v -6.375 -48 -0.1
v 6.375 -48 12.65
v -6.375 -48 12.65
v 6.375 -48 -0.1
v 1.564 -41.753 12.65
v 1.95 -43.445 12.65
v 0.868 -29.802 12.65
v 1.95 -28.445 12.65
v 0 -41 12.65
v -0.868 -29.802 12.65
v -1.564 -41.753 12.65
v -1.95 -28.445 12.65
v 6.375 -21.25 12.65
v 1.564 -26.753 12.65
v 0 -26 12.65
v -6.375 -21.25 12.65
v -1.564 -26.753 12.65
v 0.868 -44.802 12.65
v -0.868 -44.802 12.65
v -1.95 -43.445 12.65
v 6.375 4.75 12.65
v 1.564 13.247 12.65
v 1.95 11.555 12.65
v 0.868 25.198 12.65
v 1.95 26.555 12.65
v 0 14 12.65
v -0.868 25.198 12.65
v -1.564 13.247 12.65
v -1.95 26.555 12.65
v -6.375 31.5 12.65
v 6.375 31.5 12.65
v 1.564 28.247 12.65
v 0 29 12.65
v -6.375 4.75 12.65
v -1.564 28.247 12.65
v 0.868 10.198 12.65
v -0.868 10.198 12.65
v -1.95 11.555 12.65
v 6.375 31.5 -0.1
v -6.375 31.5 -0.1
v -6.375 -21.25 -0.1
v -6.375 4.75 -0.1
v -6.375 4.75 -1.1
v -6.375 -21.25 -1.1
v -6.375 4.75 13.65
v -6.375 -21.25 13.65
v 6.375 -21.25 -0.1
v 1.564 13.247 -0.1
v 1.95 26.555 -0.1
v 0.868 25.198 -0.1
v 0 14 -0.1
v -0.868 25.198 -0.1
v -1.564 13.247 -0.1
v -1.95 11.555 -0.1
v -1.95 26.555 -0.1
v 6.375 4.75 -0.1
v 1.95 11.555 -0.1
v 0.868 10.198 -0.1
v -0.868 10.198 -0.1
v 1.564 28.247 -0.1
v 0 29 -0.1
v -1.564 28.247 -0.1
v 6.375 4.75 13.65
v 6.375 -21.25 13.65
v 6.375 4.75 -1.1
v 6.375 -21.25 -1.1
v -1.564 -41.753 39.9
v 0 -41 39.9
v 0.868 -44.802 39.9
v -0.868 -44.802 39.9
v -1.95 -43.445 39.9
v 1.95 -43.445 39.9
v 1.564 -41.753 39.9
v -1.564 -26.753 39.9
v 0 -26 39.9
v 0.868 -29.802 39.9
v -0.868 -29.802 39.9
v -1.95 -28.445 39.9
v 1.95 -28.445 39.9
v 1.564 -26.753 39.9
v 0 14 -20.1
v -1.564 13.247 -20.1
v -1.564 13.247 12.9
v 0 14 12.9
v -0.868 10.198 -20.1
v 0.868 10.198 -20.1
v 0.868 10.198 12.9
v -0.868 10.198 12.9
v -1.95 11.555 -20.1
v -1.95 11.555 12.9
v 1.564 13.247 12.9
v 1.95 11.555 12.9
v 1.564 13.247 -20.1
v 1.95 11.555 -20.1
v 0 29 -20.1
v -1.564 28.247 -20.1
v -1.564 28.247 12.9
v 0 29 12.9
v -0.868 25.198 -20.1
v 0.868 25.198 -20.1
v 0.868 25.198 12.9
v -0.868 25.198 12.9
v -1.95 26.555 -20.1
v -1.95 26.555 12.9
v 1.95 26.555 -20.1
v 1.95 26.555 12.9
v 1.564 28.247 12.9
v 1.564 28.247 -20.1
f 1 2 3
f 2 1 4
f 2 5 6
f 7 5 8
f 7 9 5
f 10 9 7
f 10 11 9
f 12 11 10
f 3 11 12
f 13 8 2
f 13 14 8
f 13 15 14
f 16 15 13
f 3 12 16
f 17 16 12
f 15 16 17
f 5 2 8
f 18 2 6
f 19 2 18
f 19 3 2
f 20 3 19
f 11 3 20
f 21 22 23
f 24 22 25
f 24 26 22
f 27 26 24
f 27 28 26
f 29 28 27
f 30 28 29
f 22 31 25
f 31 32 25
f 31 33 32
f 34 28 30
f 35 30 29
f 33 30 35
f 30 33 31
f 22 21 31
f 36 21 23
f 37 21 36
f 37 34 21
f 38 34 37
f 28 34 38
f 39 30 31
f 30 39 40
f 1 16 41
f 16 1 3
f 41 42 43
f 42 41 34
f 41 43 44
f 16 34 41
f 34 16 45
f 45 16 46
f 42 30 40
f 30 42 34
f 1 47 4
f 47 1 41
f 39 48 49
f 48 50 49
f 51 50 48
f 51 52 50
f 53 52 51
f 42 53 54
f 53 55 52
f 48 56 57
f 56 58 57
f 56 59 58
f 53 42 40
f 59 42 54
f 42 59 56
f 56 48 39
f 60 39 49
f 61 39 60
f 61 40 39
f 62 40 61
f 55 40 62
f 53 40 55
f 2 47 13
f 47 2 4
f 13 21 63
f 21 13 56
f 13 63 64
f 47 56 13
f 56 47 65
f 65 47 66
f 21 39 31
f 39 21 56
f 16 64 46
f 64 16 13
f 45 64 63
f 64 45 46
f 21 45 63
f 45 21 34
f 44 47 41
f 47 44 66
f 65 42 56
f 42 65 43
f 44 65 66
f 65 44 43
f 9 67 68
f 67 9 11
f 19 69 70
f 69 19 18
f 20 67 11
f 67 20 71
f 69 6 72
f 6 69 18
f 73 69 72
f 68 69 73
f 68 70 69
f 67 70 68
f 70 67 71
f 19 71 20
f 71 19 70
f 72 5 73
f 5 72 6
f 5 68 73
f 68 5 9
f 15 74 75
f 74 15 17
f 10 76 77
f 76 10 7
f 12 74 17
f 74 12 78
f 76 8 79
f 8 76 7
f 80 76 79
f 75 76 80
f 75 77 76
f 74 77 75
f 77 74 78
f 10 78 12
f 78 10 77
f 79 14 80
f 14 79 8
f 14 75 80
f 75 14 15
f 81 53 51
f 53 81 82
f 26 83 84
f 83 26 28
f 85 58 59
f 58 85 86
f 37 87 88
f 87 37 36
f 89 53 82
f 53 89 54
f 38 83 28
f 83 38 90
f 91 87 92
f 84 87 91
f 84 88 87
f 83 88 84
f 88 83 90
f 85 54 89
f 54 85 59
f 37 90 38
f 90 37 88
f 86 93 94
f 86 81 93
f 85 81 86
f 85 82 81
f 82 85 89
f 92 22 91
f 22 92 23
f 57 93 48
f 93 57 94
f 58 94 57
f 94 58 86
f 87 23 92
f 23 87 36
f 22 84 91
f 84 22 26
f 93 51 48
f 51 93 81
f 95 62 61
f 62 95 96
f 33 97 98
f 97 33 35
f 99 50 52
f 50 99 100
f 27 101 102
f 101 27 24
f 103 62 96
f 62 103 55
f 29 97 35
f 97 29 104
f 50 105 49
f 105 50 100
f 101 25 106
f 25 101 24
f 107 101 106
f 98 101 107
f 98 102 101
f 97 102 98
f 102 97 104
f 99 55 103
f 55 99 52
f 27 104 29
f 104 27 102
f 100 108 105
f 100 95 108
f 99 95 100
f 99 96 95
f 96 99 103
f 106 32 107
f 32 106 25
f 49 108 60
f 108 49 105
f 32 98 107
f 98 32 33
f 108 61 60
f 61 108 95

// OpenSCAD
loadcellHeight = 12.75;
loadcellWidth = 12.75;
loadcellLength = 79.5;
loadCellOffset = -48;

module loadCell() {
    
    rotate([0,0,90]) {
        translate([loadCellOffset, -(loadcellWidth)/2 ,-0.1]) {
            
            difference() {
                union() {
                    cube([loadcellLength, loadcellWidth, loadcellHeight]);
                    
                    // strain gauge placement + goo
                    translate([(loadcellLength-26)/2,0,loadcellHeight]) {
                        cube([26,loadcellWidth,1]);
                    }
                    translate([(loadcellLength-26)/2,0,-1]) {
                        cube([26,loadcellWidth,1]);
                    }
                    
                    // Project bolts up
                    translate([5.0, (12.75/2),0]) {
                        // Bigger top connector holes
                        // to help align with top when visual testing
                        cylinder(d=4, h=40);
                    }
                    translate([20, (12.75/2),0]) {
                        cylinder(d=4, h=40);
                    }
                    
                    // Project bolts down
                    translate([60, (12.75/2),-20]) {
                        cylinder(d=4, h=33);
                    }
                    translate([75, (12.75/2),-20]) {
                        cylinder(d=4, h=33);
                    }
                }
                union() {
                    translate([5.0, (12.75/2),0]) {
                        // Bigger top connector holes
                        // to help align with top when visual testing
                        //#cylinder(d=4, h=40);
                    }
                    translate([20, (12.75/2),0]) {
                        //#cylinder(d=4, h=40);
                    }
                    //60
                    translate([60, (12.75/2),0]) {
                        //cylinder(d=4, h=13);
                    }
                    translate([75, (12.75/2),0]) {
                        //cylinder(d=4, h=13);
                    }
                }
          //  }
        }
    }
    }
}

loadCell();
